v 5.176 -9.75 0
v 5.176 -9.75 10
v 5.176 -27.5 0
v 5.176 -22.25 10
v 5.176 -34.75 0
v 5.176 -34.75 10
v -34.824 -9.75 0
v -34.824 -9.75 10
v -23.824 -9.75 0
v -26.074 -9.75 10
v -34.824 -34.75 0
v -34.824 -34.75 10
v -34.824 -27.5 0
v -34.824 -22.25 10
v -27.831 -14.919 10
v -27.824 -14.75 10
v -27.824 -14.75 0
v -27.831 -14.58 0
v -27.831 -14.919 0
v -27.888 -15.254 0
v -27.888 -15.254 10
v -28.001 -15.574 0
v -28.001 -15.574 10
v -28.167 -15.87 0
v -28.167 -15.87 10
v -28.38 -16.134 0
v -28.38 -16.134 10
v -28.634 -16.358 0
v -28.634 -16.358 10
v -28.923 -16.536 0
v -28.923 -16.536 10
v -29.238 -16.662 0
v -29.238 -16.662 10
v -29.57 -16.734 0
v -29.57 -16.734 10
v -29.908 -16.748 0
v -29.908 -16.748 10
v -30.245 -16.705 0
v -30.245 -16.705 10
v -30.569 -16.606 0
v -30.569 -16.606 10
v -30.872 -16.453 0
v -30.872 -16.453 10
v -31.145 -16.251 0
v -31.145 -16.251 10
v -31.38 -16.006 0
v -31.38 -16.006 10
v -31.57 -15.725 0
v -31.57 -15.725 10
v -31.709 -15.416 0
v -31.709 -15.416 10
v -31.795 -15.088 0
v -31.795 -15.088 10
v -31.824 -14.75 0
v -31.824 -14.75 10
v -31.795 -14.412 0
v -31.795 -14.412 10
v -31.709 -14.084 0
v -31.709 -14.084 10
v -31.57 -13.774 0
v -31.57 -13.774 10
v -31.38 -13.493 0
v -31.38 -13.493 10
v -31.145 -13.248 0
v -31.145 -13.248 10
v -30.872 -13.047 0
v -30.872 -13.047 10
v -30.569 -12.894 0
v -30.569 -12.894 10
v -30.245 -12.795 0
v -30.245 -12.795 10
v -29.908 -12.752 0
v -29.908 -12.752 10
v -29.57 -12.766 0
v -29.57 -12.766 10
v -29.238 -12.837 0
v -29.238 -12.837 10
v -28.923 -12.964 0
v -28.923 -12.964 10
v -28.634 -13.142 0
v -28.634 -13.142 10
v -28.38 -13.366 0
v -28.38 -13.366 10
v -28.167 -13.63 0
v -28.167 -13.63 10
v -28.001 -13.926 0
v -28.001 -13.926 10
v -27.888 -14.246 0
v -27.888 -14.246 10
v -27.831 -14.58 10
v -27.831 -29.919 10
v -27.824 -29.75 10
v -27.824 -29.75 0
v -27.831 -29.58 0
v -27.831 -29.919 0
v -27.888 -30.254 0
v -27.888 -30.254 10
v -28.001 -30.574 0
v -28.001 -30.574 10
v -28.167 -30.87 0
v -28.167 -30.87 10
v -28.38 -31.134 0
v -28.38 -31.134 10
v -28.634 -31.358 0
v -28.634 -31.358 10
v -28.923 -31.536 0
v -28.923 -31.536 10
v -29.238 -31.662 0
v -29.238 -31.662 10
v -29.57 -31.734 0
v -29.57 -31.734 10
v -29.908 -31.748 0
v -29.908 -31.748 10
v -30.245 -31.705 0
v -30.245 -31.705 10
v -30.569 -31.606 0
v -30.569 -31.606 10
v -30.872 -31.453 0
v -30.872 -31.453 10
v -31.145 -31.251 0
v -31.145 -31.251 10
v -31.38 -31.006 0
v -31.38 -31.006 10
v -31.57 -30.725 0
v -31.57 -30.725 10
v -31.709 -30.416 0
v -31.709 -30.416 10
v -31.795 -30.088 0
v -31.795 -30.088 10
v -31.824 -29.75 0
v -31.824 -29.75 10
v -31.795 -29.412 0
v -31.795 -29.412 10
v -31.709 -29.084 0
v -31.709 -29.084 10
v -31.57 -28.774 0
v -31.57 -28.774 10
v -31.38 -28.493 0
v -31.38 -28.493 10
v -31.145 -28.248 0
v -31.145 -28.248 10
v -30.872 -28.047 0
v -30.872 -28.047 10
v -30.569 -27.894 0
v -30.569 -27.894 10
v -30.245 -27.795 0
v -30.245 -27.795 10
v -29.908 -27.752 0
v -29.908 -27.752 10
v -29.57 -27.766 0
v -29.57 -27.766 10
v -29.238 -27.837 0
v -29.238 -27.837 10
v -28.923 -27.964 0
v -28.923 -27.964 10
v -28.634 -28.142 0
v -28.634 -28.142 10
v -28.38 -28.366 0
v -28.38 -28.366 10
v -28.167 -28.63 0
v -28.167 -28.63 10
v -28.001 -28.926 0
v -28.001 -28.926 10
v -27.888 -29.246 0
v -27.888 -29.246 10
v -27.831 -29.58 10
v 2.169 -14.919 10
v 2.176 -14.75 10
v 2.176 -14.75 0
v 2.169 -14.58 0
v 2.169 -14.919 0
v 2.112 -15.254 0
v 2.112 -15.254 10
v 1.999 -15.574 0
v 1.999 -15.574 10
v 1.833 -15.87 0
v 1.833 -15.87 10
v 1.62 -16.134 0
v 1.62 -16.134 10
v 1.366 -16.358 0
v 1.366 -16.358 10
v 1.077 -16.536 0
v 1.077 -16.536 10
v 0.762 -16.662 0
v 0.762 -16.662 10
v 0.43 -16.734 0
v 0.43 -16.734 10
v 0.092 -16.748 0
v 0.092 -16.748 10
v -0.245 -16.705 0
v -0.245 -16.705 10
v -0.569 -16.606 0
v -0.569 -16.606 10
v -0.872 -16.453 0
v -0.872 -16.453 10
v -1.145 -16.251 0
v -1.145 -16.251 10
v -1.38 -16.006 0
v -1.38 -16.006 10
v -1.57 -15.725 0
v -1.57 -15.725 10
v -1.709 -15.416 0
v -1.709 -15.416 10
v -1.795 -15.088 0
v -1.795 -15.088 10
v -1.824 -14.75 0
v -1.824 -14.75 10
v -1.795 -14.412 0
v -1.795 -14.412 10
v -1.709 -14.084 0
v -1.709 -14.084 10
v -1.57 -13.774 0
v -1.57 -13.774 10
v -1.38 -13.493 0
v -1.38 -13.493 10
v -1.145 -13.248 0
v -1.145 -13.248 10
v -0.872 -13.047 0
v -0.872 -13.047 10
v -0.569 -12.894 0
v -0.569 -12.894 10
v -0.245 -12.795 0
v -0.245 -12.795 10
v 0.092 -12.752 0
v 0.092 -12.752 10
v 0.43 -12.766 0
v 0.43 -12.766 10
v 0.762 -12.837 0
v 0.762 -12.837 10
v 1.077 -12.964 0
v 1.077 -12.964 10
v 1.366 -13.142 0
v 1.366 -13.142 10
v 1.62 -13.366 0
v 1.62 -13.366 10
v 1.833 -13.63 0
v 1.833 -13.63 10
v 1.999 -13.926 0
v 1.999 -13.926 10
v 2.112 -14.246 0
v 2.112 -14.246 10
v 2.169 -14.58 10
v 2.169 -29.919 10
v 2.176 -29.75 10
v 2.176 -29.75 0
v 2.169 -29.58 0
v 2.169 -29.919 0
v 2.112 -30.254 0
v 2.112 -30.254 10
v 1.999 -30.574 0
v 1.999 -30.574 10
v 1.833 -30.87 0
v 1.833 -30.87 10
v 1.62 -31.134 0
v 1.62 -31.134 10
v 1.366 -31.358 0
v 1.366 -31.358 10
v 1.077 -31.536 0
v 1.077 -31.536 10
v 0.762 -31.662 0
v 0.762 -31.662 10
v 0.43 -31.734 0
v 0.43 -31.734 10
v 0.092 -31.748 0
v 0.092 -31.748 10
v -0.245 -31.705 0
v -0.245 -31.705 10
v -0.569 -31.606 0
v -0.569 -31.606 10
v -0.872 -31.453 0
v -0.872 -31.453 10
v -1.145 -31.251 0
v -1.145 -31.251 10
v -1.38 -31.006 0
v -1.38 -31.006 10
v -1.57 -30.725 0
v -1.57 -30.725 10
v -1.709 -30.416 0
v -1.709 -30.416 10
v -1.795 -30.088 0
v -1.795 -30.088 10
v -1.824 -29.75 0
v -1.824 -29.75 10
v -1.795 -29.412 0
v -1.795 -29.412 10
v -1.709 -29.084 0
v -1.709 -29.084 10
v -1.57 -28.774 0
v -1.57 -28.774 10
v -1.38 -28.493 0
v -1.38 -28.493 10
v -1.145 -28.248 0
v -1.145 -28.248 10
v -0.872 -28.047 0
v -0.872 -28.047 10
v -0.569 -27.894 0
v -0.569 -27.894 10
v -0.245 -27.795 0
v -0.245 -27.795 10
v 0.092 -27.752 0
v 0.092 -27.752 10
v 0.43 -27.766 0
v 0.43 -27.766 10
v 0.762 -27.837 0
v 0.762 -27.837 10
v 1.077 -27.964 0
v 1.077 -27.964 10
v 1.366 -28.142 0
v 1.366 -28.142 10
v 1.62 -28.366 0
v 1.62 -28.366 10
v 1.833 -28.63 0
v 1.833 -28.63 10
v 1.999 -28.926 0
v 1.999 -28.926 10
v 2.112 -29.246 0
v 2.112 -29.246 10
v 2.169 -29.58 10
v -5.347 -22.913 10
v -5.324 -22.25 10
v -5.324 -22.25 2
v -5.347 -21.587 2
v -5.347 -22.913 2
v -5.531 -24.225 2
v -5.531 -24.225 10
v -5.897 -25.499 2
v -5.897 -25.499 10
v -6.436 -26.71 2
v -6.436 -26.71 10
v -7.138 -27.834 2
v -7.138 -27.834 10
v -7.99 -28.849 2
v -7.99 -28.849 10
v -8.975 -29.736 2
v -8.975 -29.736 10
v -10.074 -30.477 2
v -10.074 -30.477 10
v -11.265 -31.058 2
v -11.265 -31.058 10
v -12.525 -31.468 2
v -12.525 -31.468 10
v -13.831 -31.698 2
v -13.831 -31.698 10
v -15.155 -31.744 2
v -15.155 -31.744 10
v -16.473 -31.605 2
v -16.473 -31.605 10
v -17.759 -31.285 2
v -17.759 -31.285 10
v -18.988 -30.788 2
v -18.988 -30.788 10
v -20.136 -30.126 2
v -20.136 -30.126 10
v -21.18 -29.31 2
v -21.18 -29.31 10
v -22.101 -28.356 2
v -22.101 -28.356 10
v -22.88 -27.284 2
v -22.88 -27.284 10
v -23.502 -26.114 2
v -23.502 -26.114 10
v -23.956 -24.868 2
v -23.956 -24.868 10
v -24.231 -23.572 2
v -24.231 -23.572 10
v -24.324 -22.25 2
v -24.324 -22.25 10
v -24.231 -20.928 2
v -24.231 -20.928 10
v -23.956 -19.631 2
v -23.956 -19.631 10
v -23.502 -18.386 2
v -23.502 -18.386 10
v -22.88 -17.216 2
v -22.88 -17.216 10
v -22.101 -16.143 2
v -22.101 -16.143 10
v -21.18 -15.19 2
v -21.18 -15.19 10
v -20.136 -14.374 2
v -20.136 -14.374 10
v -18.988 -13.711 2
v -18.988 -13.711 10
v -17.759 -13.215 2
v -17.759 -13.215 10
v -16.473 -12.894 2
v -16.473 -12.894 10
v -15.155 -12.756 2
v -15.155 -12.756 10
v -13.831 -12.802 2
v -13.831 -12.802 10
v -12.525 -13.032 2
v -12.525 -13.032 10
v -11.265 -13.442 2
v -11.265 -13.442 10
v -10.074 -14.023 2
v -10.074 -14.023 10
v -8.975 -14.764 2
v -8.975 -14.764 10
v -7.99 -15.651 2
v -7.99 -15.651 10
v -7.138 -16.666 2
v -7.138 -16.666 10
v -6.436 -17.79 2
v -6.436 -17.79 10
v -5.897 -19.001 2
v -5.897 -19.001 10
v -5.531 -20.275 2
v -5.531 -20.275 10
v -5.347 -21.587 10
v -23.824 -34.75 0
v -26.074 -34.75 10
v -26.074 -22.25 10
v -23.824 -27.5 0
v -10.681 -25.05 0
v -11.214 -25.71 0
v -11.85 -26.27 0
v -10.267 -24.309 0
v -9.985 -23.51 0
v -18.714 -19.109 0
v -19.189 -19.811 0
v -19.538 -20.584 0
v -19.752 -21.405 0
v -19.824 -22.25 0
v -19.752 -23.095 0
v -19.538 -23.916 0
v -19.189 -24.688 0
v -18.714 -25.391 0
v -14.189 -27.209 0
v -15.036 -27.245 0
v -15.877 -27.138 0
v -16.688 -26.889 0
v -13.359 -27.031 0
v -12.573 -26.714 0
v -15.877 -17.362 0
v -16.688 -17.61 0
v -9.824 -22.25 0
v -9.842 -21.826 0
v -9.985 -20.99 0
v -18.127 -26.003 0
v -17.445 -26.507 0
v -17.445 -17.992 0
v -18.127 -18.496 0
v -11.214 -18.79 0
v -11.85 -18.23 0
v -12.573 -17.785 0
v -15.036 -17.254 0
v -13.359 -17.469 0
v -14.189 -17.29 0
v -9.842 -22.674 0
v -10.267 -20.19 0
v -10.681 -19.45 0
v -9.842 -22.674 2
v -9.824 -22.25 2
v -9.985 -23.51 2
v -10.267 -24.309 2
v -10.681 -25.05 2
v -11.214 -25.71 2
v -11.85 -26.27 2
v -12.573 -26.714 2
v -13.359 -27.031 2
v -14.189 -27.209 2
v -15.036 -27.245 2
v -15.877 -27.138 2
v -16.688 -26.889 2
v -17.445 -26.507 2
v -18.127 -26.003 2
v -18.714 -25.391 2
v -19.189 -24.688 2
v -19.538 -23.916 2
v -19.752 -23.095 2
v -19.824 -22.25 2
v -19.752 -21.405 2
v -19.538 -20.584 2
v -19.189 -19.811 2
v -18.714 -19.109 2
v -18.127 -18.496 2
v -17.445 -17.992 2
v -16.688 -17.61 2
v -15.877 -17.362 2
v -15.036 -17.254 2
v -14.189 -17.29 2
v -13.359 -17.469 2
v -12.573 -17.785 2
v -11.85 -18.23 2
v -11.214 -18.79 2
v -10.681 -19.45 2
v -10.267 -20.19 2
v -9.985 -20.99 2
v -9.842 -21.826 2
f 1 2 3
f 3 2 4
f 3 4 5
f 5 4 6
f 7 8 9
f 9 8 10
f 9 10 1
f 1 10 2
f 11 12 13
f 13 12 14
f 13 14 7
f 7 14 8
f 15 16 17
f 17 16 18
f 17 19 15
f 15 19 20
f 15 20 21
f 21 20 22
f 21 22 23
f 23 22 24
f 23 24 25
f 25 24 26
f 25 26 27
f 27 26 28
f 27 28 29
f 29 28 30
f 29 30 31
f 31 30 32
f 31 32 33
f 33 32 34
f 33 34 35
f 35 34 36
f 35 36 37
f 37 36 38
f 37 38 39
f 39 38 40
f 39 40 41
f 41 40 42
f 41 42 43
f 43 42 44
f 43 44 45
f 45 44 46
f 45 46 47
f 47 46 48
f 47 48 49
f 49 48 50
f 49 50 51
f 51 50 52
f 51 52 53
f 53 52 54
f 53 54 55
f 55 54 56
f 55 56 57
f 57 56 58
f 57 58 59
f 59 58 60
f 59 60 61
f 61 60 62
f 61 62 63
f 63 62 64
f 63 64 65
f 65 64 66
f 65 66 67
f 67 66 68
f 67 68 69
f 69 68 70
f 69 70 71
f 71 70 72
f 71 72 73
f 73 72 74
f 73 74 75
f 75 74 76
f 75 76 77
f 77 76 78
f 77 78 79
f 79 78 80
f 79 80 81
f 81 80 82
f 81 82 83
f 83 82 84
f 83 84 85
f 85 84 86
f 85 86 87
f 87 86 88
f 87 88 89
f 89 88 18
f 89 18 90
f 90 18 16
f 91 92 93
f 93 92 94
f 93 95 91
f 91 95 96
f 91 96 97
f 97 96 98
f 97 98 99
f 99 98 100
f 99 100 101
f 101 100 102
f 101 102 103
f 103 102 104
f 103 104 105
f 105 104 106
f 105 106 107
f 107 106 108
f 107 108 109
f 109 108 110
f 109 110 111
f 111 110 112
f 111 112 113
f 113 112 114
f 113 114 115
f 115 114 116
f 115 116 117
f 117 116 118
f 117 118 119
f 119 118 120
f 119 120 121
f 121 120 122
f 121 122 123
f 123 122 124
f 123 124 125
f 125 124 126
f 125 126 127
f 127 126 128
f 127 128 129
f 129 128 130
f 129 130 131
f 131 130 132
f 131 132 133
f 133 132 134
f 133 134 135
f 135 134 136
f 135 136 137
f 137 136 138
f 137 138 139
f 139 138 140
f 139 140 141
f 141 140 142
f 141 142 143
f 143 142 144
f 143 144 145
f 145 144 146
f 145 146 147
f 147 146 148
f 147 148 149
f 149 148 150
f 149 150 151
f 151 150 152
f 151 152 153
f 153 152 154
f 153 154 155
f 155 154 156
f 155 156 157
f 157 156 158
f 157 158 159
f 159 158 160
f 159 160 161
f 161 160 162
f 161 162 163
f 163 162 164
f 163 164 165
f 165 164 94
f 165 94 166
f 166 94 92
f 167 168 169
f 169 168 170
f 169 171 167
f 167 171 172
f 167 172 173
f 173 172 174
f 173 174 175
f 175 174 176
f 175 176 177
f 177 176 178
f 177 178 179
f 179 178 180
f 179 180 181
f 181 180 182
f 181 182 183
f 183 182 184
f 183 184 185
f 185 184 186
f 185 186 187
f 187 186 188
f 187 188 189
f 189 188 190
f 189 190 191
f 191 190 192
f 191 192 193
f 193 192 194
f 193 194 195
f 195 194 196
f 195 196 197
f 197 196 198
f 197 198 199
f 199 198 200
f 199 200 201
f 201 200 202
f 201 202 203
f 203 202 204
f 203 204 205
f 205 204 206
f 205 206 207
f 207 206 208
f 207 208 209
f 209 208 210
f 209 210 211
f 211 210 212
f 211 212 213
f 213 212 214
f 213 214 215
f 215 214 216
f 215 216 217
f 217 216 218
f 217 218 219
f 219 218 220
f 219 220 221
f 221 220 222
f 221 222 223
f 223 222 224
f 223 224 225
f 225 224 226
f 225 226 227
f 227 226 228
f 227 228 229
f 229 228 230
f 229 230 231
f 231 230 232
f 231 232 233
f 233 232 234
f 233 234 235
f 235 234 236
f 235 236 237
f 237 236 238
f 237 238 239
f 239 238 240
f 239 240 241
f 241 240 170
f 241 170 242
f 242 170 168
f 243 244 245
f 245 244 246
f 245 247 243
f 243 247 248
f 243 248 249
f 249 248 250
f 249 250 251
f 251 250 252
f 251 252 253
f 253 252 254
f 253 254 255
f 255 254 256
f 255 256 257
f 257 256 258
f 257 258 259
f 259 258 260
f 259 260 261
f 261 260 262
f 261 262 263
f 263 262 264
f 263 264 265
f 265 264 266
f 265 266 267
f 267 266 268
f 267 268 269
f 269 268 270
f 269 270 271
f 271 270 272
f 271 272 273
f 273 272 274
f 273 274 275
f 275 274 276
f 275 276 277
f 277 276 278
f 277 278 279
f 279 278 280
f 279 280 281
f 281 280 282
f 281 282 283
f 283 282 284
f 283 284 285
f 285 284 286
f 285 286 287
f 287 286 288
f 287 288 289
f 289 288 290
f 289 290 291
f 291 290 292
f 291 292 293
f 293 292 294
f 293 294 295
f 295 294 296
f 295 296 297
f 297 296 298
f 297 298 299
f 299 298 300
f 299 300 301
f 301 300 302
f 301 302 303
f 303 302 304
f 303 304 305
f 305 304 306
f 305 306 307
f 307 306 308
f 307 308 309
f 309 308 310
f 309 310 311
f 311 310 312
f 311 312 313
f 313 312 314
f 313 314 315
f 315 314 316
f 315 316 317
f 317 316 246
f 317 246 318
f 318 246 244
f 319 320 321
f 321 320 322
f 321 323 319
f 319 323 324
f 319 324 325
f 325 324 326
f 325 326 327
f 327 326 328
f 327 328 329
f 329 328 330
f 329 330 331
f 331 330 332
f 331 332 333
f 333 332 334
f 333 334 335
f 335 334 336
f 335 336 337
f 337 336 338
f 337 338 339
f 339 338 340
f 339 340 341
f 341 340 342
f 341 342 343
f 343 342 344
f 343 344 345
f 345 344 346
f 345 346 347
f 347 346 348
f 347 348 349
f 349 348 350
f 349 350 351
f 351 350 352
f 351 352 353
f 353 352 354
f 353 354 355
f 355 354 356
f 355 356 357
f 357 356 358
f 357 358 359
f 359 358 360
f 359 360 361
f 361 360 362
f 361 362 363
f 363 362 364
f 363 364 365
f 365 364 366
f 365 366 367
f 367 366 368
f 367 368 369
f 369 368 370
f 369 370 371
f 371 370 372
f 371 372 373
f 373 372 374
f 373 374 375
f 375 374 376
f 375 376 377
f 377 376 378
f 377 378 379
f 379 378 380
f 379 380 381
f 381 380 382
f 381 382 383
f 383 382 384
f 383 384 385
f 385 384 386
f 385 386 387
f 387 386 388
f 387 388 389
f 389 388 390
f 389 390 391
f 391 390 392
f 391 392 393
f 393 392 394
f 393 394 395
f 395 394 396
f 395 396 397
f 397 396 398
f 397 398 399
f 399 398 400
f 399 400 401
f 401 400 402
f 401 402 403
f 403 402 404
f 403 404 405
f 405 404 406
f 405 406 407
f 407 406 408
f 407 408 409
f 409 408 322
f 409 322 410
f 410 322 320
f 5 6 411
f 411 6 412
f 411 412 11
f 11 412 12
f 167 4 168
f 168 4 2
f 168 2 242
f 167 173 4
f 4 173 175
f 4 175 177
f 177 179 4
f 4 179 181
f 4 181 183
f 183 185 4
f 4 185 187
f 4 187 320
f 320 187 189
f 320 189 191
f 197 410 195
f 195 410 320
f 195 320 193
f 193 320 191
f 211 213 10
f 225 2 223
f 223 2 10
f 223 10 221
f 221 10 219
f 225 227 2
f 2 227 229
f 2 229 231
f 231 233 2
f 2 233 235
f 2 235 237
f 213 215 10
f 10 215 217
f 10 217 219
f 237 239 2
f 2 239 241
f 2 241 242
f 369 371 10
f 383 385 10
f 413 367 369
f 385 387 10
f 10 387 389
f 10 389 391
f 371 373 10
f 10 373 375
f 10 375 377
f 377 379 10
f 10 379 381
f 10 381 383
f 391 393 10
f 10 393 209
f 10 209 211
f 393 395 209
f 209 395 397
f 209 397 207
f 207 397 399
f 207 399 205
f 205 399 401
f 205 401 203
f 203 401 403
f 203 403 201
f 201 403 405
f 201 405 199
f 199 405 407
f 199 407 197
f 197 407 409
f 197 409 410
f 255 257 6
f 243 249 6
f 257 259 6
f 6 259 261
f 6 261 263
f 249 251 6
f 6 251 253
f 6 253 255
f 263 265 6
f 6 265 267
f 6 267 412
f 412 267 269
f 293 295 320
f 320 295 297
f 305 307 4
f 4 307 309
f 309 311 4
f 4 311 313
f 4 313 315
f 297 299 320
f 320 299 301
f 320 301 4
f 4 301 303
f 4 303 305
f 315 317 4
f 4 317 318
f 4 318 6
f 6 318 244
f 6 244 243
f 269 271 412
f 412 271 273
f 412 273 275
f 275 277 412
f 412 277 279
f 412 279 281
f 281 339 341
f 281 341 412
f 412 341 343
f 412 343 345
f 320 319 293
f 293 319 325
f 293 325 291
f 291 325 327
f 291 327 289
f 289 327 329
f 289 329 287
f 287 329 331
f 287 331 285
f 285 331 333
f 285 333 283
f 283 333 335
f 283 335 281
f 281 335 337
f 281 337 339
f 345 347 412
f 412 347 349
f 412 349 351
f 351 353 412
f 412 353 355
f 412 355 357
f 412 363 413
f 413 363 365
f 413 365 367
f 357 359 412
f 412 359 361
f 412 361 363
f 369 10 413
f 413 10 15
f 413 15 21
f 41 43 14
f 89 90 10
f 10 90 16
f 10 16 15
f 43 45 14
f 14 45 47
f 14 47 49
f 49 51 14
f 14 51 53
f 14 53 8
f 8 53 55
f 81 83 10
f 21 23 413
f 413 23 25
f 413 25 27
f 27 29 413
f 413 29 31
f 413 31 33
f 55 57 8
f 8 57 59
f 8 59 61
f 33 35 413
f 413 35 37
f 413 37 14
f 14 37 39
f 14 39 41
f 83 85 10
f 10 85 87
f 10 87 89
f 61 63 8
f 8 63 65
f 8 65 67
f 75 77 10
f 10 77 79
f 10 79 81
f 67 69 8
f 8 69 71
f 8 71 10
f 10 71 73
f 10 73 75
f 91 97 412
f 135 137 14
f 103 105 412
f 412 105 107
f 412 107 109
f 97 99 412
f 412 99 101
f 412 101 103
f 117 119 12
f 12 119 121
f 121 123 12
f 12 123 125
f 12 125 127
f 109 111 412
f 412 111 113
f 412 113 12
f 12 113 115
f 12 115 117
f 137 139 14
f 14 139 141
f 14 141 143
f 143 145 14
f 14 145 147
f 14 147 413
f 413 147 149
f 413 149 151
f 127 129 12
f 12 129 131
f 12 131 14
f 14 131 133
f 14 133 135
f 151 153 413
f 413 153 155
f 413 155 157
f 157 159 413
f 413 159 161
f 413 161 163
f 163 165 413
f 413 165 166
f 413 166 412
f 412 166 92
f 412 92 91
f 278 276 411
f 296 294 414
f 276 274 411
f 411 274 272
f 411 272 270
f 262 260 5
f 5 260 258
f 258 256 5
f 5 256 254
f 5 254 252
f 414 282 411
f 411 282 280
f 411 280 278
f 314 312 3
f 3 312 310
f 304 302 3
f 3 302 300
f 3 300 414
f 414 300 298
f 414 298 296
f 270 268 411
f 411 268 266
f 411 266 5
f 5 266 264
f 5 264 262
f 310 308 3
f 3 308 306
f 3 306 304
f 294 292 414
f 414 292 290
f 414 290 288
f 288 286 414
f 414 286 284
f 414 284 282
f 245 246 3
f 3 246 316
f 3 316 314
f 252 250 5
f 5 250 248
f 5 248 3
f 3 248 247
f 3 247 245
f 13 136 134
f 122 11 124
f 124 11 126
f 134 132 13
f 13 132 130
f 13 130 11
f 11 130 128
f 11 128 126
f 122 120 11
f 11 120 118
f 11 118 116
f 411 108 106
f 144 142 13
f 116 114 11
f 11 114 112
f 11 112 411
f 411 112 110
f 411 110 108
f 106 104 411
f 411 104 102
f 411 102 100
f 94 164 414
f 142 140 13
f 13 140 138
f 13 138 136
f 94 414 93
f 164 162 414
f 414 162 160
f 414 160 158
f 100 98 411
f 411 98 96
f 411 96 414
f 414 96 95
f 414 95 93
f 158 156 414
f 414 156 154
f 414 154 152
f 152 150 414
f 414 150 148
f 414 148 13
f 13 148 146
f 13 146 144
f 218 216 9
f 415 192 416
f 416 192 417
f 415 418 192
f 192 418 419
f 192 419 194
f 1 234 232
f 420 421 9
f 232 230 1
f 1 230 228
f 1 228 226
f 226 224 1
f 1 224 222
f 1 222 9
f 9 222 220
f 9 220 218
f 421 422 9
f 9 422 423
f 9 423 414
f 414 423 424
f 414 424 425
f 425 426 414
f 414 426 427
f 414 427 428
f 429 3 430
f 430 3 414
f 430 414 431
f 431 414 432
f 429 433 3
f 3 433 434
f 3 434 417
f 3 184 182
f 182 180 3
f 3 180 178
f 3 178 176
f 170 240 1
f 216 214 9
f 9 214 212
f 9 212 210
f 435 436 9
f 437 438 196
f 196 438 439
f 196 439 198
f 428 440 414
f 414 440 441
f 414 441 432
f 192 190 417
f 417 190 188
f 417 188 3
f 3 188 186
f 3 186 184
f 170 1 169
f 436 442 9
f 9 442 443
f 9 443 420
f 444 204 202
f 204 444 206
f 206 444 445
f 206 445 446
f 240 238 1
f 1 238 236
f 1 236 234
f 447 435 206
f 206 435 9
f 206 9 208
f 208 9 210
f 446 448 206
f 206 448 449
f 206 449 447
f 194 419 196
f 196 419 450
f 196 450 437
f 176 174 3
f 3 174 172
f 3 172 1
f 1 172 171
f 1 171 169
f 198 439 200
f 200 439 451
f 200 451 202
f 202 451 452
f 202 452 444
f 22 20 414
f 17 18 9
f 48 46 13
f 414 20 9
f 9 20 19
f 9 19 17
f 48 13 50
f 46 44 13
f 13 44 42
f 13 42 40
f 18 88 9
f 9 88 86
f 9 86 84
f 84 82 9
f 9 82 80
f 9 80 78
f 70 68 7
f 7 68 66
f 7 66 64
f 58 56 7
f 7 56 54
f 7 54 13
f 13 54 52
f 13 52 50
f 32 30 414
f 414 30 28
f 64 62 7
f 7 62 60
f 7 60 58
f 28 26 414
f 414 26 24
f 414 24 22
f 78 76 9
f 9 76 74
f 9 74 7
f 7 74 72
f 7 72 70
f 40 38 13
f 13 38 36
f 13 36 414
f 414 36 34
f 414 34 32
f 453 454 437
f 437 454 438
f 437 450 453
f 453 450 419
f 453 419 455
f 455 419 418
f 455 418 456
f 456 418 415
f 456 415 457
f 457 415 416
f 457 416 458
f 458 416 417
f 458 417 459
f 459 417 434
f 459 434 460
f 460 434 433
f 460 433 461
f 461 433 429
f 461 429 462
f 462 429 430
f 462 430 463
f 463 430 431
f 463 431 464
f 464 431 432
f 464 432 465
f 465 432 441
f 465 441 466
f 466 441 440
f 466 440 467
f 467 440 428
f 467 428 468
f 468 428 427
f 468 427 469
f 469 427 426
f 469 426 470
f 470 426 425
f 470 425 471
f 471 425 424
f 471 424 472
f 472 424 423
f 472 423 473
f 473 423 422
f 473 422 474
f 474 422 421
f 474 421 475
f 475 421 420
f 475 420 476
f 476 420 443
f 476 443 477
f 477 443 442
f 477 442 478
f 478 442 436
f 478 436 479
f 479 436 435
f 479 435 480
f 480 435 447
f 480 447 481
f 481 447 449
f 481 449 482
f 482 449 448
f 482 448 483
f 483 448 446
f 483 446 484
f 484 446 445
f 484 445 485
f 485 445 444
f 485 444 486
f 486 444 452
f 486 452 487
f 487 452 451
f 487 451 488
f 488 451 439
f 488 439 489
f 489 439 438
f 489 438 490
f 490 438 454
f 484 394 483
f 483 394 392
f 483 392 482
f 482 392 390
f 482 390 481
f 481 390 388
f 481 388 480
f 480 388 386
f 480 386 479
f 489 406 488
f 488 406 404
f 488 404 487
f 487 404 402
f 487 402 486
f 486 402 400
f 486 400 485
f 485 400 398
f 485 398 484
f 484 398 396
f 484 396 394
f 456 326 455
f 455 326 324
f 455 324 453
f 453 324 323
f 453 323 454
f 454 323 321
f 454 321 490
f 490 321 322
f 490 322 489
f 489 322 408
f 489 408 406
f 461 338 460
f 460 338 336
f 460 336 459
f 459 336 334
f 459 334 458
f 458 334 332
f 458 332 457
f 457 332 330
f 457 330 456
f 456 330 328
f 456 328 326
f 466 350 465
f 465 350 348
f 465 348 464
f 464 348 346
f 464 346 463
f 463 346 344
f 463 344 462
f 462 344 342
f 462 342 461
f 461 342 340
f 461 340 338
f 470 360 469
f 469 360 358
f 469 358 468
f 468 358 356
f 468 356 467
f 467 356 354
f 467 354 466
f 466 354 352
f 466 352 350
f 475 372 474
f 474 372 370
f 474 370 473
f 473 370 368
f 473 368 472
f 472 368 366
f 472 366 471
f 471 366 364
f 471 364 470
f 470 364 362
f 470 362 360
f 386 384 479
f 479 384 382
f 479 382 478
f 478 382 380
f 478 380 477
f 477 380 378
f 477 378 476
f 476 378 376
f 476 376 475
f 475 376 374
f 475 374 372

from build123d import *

# Parameters (mm, degrees)
ESQUISSE1_W        = 40
ESQUISSE1_H        = 25
ESQUISSE1_R        = 2
ESQUISSE1_R_2      = 9.5
BOSS_EXTRU_1_DEPTH = 10
ESQUISSE1_4_R      = 9.5
ESQUISSE1_4_R_2    = 5
BOSS_EXTRU_2_DEPTH = 2


with BuildPart() as part:
    # Esquisse1 → Boss.-Extru.1 (new body)
    with BuildSketch(Plane.XY):
        with Locations((-14.823595047, -22.249813872)):
            Rectangle(ESQUISSE1_W, ESQUISSE1_H)
        with Locations((-29.823595047, -29.749813872)):
            Circle(ESQUISSE1_R, mode=Mode.SUBTRACT)
        with Locations((0.176404953, -29.749813872)):
            Circle(ESQUISSE1_R, mode=Mode.SUBTRACT)
        with Locations((-14.823595047, -22.249813872)):
            Circle(ESQUISSE1_R_2, mode=Mode.SUBTRACT)
        with Locations((-29.823595047, -14.749813872)):
            Circle(ESQUISSE1_R, mode=Mode.SUBTRACT)
        with Locations((0.176404953, -14.749813872)):
            Circle(ESQUISSE1_R, mode=Mode.SUBTRACT)
    extrude(amount=BOSS_EXTRU_1_DEPTH)

    # Esquisse1_4 → Boss.-Extru.2 (add)
    with BuildSketch(Plane.XY):
        with Locations((-14.823595047, -22.249813872)):
            Circle(ESQUISSE1_4_R)
        with Locations((-14.823595047, -22.249813872)):
            Circle(ESQUISSE1_4_R_2, mode=Mode.SUBTRACT)
    extrude(amount=BOSS_EXTRU_2_DEPTH)


solid = part.part
